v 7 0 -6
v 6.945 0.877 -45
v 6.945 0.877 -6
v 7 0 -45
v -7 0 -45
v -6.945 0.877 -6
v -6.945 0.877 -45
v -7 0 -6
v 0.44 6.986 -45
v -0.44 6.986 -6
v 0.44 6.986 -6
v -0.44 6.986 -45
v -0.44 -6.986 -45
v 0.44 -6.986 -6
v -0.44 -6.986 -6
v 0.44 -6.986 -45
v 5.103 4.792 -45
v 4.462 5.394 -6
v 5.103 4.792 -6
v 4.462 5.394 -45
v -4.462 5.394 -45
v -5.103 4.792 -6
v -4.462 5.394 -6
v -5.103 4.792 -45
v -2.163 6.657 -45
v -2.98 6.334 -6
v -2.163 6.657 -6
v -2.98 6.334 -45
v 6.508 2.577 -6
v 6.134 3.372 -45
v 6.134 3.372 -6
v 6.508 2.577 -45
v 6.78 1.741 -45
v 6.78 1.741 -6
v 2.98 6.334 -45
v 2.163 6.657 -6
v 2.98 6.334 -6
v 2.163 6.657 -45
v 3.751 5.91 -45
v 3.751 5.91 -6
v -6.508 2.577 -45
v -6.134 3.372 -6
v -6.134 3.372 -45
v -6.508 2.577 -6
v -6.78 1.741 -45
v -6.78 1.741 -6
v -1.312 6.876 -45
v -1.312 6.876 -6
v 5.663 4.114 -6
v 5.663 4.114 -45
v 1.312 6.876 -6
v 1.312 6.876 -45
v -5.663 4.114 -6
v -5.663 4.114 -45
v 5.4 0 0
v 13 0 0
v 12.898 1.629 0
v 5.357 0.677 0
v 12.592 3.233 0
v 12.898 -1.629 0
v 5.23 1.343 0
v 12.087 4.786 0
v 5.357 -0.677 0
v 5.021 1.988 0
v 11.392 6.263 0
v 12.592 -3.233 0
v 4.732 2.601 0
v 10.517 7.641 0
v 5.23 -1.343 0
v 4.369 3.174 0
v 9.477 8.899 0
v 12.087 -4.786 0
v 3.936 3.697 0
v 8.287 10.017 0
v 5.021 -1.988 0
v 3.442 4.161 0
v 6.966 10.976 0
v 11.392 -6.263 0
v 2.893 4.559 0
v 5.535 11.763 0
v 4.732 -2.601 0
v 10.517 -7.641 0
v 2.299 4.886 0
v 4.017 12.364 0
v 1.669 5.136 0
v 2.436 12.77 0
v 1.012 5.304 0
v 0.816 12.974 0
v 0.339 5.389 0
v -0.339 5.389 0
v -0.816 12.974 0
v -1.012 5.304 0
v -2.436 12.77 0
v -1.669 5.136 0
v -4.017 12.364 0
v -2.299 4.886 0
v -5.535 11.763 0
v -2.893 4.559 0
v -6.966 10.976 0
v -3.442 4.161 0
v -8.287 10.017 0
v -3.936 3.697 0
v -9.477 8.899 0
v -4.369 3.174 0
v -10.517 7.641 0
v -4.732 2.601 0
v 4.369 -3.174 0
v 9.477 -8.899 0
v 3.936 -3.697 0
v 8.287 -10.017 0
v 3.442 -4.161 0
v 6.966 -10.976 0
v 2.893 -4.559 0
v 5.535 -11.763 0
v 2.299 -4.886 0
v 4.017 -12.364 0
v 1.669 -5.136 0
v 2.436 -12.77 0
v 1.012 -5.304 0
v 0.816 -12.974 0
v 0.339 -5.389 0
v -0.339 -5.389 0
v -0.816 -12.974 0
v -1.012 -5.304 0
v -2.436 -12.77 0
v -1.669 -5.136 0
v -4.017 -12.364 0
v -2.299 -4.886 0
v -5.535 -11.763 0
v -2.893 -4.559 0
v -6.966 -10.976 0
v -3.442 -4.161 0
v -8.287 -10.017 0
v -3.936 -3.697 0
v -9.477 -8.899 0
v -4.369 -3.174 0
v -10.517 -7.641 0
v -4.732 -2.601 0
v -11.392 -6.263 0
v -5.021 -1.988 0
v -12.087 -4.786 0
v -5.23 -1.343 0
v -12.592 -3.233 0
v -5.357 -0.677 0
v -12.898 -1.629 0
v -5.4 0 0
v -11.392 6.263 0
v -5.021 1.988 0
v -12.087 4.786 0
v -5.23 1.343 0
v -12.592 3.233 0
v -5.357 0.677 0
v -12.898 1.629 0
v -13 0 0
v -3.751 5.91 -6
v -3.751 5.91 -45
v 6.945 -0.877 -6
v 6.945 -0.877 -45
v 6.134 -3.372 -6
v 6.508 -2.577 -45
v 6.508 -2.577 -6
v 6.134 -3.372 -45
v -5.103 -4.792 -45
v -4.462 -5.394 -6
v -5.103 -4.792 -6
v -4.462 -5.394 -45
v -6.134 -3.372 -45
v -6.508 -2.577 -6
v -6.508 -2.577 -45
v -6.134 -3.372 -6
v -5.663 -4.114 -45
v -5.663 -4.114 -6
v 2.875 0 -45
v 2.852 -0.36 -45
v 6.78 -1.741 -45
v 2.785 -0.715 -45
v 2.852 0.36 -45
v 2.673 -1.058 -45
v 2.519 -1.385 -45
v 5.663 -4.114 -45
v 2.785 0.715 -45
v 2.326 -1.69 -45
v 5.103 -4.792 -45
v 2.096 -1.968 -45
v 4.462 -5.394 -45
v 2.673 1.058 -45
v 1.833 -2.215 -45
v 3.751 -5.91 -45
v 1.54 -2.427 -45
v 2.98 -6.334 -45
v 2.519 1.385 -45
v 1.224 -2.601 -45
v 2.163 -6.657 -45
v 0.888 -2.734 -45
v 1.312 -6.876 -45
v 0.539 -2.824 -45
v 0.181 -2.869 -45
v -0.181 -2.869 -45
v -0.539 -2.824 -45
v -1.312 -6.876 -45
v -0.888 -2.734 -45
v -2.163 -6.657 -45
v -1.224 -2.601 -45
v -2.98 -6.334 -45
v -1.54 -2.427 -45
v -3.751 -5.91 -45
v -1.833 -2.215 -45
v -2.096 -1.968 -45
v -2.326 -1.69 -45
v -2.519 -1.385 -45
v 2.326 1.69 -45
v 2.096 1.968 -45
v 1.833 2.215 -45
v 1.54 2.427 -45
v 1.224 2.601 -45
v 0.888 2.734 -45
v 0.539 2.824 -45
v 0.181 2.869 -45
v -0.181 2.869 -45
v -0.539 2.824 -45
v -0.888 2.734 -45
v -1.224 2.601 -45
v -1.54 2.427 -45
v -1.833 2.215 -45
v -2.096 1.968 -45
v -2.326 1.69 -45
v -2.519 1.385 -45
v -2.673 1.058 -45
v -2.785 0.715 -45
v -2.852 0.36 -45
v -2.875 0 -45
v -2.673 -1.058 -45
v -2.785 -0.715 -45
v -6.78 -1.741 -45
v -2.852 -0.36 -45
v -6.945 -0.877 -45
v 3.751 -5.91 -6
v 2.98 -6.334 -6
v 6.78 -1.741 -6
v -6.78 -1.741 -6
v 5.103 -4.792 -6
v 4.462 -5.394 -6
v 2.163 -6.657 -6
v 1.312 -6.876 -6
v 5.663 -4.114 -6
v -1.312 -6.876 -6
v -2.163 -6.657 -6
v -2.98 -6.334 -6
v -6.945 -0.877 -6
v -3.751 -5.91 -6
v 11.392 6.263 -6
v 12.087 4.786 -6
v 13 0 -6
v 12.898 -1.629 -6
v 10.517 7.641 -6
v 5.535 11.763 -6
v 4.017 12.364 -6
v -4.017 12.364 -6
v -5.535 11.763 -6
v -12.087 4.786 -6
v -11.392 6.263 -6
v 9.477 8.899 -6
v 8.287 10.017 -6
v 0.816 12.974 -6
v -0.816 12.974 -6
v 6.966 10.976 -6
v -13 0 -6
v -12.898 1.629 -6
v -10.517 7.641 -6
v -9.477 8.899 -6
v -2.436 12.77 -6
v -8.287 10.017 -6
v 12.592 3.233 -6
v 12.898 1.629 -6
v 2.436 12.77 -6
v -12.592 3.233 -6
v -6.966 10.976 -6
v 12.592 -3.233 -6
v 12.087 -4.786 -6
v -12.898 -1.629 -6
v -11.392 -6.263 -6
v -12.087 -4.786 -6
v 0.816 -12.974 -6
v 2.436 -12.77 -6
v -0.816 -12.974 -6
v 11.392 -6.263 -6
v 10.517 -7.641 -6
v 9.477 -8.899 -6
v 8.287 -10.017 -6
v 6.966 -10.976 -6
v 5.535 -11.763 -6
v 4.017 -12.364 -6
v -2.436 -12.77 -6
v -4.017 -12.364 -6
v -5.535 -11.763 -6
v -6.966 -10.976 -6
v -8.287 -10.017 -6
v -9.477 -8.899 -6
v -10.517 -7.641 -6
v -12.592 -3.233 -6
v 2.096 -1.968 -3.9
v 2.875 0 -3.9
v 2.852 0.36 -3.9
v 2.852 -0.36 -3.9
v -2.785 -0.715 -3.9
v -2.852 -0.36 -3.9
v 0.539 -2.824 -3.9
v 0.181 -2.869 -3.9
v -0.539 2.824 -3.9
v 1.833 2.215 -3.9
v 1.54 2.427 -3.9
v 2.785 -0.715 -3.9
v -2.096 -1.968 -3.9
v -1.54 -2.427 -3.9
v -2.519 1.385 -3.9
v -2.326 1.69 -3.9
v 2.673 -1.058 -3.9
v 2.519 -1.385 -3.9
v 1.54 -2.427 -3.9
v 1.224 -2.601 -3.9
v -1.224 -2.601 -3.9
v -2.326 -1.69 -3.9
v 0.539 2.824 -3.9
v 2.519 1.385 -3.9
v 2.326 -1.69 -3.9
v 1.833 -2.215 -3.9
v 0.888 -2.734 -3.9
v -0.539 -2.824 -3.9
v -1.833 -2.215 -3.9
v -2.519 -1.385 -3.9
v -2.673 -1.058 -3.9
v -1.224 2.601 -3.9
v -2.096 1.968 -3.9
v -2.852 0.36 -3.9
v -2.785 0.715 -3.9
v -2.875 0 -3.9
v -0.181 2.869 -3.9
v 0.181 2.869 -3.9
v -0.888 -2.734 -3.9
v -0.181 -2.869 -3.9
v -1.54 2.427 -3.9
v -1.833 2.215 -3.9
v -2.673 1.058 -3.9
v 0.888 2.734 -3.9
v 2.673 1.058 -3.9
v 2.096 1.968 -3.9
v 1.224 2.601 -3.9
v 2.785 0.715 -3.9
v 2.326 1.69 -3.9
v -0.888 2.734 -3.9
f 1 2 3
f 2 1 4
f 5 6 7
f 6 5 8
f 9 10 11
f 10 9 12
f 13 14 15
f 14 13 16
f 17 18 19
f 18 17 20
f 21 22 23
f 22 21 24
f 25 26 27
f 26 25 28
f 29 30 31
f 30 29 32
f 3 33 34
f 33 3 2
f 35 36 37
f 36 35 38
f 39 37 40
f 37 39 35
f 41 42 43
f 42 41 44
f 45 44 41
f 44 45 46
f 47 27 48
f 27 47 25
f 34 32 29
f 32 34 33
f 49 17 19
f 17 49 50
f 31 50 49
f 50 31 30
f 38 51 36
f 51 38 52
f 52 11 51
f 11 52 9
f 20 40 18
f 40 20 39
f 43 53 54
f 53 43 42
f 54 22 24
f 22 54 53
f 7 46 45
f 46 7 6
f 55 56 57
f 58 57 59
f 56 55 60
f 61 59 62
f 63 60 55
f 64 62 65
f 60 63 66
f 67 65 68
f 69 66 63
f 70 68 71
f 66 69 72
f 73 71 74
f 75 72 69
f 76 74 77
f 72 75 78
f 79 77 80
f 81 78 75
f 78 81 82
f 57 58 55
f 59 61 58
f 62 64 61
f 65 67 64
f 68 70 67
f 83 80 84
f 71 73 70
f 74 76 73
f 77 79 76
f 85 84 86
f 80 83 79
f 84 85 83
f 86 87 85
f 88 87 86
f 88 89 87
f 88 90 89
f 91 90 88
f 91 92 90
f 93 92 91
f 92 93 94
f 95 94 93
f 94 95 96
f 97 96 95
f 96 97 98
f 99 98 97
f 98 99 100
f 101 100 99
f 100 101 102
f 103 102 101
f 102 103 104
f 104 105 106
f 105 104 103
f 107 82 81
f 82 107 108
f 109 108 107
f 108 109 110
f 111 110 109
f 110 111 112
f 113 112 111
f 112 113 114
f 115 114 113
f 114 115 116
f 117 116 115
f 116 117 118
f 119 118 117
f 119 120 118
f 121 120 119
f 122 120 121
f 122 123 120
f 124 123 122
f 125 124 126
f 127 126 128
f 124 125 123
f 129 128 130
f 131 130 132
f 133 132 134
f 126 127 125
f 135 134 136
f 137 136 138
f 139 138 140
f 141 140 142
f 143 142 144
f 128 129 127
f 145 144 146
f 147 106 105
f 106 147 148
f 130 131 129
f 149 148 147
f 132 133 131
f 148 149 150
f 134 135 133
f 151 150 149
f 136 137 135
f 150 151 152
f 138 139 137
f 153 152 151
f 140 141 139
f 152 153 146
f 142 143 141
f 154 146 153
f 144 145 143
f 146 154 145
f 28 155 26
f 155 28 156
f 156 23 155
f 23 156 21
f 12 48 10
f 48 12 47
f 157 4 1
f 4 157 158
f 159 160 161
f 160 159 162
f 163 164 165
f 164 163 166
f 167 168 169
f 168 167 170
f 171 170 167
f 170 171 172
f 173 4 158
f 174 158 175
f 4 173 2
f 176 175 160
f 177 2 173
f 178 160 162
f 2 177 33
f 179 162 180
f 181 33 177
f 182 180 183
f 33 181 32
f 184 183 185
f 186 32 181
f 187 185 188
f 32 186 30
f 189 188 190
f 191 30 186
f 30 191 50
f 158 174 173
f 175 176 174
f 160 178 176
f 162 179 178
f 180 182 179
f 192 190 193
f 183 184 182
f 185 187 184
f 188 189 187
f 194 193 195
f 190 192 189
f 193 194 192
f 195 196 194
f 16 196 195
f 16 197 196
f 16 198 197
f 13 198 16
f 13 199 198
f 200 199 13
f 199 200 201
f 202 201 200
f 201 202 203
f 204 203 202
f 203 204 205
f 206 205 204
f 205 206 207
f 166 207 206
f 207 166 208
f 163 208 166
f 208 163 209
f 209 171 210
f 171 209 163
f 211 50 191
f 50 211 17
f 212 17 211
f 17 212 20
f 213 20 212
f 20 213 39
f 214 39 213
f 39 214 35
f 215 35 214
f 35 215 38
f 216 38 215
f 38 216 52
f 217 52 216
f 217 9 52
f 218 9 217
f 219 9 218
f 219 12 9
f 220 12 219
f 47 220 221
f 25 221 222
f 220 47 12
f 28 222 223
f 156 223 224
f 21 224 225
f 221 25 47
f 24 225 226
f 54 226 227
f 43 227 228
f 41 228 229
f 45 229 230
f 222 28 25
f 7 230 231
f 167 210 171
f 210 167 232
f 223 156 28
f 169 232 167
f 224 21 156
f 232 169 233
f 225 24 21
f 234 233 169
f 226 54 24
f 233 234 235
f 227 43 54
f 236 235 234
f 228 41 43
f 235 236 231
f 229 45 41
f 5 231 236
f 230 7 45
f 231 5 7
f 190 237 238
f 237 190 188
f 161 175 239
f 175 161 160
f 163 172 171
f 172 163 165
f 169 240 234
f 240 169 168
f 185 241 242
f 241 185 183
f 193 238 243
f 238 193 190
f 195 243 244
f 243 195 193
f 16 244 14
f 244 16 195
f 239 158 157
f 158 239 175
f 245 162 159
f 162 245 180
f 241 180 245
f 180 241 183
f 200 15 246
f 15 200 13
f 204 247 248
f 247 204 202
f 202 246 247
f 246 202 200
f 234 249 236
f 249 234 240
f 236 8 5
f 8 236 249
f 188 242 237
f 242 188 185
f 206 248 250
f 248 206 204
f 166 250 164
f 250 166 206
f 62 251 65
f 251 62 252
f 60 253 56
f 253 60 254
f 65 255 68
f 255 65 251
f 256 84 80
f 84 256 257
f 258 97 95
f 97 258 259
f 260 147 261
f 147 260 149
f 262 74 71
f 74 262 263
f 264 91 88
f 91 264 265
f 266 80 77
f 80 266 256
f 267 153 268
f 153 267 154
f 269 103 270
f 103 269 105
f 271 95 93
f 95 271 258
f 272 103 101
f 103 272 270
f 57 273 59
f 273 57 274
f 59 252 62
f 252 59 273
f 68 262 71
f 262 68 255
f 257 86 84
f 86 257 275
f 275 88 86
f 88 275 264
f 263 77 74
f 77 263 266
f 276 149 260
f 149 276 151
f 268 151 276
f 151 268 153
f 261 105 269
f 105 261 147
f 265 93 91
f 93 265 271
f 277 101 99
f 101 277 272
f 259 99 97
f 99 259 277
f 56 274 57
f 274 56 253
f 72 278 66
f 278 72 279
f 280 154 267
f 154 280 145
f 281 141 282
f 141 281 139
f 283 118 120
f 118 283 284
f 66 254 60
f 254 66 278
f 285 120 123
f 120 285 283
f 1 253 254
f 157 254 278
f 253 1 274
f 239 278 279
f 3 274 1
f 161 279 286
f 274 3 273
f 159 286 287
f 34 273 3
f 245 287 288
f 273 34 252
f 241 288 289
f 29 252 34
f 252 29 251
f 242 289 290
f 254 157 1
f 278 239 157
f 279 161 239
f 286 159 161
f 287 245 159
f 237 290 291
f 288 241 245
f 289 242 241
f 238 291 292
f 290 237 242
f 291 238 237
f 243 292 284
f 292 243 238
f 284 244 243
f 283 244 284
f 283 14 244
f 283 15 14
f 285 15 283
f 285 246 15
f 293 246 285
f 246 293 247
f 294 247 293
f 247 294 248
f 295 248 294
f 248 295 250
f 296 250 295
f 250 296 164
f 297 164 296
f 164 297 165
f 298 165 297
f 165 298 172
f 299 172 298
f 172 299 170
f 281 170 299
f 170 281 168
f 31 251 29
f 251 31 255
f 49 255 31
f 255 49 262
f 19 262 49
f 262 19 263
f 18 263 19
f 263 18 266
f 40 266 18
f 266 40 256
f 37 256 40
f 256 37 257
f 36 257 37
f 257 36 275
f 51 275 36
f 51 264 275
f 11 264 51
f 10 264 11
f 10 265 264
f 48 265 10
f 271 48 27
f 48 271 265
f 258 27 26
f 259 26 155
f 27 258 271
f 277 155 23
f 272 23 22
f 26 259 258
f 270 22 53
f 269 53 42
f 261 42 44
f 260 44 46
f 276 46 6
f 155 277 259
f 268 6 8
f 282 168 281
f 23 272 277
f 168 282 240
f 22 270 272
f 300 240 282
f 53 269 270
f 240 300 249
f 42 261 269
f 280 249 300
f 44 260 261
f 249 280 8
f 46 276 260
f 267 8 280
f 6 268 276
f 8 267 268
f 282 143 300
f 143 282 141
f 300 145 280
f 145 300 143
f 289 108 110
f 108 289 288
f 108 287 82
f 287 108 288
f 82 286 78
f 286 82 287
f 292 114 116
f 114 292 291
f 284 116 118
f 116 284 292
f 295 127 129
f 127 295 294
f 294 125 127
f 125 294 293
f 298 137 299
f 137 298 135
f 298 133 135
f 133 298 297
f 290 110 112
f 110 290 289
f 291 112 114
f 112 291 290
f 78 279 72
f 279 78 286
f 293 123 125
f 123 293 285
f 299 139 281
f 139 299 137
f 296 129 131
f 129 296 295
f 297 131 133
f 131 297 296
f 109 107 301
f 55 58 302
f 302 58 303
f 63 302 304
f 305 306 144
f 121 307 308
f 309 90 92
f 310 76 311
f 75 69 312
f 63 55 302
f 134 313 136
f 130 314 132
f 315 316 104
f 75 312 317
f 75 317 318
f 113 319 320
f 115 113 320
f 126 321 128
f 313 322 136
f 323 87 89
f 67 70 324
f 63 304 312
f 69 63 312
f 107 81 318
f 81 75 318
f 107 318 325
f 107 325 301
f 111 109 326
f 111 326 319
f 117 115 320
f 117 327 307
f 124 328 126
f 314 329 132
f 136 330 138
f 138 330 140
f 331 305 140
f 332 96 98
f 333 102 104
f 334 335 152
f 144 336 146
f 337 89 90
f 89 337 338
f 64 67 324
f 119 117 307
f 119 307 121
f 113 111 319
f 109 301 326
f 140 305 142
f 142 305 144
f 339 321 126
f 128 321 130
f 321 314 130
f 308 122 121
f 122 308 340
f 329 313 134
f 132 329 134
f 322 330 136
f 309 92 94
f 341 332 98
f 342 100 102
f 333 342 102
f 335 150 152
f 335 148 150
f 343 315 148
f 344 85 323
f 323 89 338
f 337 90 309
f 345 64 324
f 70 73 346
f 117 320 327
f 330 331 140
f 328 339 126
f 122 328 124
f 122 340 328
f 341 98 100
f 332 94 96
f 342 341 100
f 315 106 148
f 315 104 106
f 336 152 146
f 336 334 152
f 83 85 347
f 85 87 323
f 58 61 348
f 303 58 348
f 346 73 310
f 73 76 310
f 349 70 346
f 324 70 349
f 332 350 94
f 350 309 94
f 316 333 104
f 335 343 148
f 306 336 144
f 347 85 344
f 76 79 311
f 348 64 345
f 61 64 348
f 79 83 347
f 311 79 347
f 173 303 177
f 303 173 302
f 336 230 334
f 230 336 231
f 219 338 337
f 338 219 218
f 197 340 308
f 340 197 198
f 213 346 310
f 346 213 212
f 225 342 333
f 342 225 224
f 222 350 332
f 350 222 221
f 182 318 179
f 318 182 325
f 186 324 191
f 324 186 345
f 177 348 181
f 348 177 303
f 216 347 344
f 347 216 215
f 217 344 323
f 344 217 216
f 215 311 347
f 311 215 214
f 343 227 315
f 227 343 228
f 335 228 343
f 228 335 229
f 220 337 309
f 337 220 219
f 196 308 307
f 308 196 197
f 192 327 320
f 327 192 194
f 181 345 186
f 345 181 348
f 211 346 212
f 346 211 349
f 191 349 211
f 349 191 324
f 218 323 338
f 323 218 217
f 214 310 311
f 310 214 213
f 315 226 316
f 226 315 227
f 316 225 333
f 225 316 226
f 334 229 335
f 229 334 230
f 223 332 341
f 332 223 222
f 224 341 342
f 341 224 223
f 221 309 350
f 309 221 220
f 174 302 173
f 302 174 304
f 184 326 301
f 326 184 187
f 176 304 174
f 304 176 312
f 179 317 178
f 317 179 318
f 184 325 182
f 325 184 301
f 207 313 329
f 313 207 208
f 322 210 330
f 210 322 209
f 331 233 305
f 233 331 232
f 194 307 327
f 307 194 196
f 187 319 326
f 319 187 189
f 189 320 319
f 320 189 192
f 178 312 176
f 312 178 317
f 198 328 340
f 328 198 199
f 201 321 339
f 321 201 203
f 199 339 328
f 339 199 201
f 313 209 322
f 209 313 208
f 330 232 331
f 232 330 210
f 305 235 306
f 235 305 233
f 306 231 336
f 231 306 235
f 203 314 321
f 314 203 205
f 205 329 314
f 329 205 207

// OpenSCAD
$fn = 50;


difference() {
	union() {
		translate(v = [0, 0, -45.0000000000]) {
			cylinder(h = 45, r = 7.0000000000);
		}
		translate(v = [0, 0, -6.0000000000]) {
			cylinder(h = 6, r = 13.0000000000);
		}
	}
	union() {
		translate(v = [0, 0, 0]) {
			rotate(a = [0, 0, 0]) {
				difference() {
					union() {
						#translate(v = [0, 0, -45.0000000000]) {
							cylinder(h = 45, r = 2.6000000000);
						}
						#translate(v = [0, 0, -3.9000000000]) {
							cylinder(h = 3.9000000000, r = 7.0000000000, r1 = 2.8750000000, r2 = 5.4000000000);
						}
						#translate(v = [0, 0, -45.0000000000]) {
							cylinder(h = 45, r = 2.8750000000);
						}
						#translate(v = [0, 0, -45.0000000000]) {
							cylinder(h = 45, r = 2.6000000000);
						}
					}
					union();
				}
			}
		}
	}
}
